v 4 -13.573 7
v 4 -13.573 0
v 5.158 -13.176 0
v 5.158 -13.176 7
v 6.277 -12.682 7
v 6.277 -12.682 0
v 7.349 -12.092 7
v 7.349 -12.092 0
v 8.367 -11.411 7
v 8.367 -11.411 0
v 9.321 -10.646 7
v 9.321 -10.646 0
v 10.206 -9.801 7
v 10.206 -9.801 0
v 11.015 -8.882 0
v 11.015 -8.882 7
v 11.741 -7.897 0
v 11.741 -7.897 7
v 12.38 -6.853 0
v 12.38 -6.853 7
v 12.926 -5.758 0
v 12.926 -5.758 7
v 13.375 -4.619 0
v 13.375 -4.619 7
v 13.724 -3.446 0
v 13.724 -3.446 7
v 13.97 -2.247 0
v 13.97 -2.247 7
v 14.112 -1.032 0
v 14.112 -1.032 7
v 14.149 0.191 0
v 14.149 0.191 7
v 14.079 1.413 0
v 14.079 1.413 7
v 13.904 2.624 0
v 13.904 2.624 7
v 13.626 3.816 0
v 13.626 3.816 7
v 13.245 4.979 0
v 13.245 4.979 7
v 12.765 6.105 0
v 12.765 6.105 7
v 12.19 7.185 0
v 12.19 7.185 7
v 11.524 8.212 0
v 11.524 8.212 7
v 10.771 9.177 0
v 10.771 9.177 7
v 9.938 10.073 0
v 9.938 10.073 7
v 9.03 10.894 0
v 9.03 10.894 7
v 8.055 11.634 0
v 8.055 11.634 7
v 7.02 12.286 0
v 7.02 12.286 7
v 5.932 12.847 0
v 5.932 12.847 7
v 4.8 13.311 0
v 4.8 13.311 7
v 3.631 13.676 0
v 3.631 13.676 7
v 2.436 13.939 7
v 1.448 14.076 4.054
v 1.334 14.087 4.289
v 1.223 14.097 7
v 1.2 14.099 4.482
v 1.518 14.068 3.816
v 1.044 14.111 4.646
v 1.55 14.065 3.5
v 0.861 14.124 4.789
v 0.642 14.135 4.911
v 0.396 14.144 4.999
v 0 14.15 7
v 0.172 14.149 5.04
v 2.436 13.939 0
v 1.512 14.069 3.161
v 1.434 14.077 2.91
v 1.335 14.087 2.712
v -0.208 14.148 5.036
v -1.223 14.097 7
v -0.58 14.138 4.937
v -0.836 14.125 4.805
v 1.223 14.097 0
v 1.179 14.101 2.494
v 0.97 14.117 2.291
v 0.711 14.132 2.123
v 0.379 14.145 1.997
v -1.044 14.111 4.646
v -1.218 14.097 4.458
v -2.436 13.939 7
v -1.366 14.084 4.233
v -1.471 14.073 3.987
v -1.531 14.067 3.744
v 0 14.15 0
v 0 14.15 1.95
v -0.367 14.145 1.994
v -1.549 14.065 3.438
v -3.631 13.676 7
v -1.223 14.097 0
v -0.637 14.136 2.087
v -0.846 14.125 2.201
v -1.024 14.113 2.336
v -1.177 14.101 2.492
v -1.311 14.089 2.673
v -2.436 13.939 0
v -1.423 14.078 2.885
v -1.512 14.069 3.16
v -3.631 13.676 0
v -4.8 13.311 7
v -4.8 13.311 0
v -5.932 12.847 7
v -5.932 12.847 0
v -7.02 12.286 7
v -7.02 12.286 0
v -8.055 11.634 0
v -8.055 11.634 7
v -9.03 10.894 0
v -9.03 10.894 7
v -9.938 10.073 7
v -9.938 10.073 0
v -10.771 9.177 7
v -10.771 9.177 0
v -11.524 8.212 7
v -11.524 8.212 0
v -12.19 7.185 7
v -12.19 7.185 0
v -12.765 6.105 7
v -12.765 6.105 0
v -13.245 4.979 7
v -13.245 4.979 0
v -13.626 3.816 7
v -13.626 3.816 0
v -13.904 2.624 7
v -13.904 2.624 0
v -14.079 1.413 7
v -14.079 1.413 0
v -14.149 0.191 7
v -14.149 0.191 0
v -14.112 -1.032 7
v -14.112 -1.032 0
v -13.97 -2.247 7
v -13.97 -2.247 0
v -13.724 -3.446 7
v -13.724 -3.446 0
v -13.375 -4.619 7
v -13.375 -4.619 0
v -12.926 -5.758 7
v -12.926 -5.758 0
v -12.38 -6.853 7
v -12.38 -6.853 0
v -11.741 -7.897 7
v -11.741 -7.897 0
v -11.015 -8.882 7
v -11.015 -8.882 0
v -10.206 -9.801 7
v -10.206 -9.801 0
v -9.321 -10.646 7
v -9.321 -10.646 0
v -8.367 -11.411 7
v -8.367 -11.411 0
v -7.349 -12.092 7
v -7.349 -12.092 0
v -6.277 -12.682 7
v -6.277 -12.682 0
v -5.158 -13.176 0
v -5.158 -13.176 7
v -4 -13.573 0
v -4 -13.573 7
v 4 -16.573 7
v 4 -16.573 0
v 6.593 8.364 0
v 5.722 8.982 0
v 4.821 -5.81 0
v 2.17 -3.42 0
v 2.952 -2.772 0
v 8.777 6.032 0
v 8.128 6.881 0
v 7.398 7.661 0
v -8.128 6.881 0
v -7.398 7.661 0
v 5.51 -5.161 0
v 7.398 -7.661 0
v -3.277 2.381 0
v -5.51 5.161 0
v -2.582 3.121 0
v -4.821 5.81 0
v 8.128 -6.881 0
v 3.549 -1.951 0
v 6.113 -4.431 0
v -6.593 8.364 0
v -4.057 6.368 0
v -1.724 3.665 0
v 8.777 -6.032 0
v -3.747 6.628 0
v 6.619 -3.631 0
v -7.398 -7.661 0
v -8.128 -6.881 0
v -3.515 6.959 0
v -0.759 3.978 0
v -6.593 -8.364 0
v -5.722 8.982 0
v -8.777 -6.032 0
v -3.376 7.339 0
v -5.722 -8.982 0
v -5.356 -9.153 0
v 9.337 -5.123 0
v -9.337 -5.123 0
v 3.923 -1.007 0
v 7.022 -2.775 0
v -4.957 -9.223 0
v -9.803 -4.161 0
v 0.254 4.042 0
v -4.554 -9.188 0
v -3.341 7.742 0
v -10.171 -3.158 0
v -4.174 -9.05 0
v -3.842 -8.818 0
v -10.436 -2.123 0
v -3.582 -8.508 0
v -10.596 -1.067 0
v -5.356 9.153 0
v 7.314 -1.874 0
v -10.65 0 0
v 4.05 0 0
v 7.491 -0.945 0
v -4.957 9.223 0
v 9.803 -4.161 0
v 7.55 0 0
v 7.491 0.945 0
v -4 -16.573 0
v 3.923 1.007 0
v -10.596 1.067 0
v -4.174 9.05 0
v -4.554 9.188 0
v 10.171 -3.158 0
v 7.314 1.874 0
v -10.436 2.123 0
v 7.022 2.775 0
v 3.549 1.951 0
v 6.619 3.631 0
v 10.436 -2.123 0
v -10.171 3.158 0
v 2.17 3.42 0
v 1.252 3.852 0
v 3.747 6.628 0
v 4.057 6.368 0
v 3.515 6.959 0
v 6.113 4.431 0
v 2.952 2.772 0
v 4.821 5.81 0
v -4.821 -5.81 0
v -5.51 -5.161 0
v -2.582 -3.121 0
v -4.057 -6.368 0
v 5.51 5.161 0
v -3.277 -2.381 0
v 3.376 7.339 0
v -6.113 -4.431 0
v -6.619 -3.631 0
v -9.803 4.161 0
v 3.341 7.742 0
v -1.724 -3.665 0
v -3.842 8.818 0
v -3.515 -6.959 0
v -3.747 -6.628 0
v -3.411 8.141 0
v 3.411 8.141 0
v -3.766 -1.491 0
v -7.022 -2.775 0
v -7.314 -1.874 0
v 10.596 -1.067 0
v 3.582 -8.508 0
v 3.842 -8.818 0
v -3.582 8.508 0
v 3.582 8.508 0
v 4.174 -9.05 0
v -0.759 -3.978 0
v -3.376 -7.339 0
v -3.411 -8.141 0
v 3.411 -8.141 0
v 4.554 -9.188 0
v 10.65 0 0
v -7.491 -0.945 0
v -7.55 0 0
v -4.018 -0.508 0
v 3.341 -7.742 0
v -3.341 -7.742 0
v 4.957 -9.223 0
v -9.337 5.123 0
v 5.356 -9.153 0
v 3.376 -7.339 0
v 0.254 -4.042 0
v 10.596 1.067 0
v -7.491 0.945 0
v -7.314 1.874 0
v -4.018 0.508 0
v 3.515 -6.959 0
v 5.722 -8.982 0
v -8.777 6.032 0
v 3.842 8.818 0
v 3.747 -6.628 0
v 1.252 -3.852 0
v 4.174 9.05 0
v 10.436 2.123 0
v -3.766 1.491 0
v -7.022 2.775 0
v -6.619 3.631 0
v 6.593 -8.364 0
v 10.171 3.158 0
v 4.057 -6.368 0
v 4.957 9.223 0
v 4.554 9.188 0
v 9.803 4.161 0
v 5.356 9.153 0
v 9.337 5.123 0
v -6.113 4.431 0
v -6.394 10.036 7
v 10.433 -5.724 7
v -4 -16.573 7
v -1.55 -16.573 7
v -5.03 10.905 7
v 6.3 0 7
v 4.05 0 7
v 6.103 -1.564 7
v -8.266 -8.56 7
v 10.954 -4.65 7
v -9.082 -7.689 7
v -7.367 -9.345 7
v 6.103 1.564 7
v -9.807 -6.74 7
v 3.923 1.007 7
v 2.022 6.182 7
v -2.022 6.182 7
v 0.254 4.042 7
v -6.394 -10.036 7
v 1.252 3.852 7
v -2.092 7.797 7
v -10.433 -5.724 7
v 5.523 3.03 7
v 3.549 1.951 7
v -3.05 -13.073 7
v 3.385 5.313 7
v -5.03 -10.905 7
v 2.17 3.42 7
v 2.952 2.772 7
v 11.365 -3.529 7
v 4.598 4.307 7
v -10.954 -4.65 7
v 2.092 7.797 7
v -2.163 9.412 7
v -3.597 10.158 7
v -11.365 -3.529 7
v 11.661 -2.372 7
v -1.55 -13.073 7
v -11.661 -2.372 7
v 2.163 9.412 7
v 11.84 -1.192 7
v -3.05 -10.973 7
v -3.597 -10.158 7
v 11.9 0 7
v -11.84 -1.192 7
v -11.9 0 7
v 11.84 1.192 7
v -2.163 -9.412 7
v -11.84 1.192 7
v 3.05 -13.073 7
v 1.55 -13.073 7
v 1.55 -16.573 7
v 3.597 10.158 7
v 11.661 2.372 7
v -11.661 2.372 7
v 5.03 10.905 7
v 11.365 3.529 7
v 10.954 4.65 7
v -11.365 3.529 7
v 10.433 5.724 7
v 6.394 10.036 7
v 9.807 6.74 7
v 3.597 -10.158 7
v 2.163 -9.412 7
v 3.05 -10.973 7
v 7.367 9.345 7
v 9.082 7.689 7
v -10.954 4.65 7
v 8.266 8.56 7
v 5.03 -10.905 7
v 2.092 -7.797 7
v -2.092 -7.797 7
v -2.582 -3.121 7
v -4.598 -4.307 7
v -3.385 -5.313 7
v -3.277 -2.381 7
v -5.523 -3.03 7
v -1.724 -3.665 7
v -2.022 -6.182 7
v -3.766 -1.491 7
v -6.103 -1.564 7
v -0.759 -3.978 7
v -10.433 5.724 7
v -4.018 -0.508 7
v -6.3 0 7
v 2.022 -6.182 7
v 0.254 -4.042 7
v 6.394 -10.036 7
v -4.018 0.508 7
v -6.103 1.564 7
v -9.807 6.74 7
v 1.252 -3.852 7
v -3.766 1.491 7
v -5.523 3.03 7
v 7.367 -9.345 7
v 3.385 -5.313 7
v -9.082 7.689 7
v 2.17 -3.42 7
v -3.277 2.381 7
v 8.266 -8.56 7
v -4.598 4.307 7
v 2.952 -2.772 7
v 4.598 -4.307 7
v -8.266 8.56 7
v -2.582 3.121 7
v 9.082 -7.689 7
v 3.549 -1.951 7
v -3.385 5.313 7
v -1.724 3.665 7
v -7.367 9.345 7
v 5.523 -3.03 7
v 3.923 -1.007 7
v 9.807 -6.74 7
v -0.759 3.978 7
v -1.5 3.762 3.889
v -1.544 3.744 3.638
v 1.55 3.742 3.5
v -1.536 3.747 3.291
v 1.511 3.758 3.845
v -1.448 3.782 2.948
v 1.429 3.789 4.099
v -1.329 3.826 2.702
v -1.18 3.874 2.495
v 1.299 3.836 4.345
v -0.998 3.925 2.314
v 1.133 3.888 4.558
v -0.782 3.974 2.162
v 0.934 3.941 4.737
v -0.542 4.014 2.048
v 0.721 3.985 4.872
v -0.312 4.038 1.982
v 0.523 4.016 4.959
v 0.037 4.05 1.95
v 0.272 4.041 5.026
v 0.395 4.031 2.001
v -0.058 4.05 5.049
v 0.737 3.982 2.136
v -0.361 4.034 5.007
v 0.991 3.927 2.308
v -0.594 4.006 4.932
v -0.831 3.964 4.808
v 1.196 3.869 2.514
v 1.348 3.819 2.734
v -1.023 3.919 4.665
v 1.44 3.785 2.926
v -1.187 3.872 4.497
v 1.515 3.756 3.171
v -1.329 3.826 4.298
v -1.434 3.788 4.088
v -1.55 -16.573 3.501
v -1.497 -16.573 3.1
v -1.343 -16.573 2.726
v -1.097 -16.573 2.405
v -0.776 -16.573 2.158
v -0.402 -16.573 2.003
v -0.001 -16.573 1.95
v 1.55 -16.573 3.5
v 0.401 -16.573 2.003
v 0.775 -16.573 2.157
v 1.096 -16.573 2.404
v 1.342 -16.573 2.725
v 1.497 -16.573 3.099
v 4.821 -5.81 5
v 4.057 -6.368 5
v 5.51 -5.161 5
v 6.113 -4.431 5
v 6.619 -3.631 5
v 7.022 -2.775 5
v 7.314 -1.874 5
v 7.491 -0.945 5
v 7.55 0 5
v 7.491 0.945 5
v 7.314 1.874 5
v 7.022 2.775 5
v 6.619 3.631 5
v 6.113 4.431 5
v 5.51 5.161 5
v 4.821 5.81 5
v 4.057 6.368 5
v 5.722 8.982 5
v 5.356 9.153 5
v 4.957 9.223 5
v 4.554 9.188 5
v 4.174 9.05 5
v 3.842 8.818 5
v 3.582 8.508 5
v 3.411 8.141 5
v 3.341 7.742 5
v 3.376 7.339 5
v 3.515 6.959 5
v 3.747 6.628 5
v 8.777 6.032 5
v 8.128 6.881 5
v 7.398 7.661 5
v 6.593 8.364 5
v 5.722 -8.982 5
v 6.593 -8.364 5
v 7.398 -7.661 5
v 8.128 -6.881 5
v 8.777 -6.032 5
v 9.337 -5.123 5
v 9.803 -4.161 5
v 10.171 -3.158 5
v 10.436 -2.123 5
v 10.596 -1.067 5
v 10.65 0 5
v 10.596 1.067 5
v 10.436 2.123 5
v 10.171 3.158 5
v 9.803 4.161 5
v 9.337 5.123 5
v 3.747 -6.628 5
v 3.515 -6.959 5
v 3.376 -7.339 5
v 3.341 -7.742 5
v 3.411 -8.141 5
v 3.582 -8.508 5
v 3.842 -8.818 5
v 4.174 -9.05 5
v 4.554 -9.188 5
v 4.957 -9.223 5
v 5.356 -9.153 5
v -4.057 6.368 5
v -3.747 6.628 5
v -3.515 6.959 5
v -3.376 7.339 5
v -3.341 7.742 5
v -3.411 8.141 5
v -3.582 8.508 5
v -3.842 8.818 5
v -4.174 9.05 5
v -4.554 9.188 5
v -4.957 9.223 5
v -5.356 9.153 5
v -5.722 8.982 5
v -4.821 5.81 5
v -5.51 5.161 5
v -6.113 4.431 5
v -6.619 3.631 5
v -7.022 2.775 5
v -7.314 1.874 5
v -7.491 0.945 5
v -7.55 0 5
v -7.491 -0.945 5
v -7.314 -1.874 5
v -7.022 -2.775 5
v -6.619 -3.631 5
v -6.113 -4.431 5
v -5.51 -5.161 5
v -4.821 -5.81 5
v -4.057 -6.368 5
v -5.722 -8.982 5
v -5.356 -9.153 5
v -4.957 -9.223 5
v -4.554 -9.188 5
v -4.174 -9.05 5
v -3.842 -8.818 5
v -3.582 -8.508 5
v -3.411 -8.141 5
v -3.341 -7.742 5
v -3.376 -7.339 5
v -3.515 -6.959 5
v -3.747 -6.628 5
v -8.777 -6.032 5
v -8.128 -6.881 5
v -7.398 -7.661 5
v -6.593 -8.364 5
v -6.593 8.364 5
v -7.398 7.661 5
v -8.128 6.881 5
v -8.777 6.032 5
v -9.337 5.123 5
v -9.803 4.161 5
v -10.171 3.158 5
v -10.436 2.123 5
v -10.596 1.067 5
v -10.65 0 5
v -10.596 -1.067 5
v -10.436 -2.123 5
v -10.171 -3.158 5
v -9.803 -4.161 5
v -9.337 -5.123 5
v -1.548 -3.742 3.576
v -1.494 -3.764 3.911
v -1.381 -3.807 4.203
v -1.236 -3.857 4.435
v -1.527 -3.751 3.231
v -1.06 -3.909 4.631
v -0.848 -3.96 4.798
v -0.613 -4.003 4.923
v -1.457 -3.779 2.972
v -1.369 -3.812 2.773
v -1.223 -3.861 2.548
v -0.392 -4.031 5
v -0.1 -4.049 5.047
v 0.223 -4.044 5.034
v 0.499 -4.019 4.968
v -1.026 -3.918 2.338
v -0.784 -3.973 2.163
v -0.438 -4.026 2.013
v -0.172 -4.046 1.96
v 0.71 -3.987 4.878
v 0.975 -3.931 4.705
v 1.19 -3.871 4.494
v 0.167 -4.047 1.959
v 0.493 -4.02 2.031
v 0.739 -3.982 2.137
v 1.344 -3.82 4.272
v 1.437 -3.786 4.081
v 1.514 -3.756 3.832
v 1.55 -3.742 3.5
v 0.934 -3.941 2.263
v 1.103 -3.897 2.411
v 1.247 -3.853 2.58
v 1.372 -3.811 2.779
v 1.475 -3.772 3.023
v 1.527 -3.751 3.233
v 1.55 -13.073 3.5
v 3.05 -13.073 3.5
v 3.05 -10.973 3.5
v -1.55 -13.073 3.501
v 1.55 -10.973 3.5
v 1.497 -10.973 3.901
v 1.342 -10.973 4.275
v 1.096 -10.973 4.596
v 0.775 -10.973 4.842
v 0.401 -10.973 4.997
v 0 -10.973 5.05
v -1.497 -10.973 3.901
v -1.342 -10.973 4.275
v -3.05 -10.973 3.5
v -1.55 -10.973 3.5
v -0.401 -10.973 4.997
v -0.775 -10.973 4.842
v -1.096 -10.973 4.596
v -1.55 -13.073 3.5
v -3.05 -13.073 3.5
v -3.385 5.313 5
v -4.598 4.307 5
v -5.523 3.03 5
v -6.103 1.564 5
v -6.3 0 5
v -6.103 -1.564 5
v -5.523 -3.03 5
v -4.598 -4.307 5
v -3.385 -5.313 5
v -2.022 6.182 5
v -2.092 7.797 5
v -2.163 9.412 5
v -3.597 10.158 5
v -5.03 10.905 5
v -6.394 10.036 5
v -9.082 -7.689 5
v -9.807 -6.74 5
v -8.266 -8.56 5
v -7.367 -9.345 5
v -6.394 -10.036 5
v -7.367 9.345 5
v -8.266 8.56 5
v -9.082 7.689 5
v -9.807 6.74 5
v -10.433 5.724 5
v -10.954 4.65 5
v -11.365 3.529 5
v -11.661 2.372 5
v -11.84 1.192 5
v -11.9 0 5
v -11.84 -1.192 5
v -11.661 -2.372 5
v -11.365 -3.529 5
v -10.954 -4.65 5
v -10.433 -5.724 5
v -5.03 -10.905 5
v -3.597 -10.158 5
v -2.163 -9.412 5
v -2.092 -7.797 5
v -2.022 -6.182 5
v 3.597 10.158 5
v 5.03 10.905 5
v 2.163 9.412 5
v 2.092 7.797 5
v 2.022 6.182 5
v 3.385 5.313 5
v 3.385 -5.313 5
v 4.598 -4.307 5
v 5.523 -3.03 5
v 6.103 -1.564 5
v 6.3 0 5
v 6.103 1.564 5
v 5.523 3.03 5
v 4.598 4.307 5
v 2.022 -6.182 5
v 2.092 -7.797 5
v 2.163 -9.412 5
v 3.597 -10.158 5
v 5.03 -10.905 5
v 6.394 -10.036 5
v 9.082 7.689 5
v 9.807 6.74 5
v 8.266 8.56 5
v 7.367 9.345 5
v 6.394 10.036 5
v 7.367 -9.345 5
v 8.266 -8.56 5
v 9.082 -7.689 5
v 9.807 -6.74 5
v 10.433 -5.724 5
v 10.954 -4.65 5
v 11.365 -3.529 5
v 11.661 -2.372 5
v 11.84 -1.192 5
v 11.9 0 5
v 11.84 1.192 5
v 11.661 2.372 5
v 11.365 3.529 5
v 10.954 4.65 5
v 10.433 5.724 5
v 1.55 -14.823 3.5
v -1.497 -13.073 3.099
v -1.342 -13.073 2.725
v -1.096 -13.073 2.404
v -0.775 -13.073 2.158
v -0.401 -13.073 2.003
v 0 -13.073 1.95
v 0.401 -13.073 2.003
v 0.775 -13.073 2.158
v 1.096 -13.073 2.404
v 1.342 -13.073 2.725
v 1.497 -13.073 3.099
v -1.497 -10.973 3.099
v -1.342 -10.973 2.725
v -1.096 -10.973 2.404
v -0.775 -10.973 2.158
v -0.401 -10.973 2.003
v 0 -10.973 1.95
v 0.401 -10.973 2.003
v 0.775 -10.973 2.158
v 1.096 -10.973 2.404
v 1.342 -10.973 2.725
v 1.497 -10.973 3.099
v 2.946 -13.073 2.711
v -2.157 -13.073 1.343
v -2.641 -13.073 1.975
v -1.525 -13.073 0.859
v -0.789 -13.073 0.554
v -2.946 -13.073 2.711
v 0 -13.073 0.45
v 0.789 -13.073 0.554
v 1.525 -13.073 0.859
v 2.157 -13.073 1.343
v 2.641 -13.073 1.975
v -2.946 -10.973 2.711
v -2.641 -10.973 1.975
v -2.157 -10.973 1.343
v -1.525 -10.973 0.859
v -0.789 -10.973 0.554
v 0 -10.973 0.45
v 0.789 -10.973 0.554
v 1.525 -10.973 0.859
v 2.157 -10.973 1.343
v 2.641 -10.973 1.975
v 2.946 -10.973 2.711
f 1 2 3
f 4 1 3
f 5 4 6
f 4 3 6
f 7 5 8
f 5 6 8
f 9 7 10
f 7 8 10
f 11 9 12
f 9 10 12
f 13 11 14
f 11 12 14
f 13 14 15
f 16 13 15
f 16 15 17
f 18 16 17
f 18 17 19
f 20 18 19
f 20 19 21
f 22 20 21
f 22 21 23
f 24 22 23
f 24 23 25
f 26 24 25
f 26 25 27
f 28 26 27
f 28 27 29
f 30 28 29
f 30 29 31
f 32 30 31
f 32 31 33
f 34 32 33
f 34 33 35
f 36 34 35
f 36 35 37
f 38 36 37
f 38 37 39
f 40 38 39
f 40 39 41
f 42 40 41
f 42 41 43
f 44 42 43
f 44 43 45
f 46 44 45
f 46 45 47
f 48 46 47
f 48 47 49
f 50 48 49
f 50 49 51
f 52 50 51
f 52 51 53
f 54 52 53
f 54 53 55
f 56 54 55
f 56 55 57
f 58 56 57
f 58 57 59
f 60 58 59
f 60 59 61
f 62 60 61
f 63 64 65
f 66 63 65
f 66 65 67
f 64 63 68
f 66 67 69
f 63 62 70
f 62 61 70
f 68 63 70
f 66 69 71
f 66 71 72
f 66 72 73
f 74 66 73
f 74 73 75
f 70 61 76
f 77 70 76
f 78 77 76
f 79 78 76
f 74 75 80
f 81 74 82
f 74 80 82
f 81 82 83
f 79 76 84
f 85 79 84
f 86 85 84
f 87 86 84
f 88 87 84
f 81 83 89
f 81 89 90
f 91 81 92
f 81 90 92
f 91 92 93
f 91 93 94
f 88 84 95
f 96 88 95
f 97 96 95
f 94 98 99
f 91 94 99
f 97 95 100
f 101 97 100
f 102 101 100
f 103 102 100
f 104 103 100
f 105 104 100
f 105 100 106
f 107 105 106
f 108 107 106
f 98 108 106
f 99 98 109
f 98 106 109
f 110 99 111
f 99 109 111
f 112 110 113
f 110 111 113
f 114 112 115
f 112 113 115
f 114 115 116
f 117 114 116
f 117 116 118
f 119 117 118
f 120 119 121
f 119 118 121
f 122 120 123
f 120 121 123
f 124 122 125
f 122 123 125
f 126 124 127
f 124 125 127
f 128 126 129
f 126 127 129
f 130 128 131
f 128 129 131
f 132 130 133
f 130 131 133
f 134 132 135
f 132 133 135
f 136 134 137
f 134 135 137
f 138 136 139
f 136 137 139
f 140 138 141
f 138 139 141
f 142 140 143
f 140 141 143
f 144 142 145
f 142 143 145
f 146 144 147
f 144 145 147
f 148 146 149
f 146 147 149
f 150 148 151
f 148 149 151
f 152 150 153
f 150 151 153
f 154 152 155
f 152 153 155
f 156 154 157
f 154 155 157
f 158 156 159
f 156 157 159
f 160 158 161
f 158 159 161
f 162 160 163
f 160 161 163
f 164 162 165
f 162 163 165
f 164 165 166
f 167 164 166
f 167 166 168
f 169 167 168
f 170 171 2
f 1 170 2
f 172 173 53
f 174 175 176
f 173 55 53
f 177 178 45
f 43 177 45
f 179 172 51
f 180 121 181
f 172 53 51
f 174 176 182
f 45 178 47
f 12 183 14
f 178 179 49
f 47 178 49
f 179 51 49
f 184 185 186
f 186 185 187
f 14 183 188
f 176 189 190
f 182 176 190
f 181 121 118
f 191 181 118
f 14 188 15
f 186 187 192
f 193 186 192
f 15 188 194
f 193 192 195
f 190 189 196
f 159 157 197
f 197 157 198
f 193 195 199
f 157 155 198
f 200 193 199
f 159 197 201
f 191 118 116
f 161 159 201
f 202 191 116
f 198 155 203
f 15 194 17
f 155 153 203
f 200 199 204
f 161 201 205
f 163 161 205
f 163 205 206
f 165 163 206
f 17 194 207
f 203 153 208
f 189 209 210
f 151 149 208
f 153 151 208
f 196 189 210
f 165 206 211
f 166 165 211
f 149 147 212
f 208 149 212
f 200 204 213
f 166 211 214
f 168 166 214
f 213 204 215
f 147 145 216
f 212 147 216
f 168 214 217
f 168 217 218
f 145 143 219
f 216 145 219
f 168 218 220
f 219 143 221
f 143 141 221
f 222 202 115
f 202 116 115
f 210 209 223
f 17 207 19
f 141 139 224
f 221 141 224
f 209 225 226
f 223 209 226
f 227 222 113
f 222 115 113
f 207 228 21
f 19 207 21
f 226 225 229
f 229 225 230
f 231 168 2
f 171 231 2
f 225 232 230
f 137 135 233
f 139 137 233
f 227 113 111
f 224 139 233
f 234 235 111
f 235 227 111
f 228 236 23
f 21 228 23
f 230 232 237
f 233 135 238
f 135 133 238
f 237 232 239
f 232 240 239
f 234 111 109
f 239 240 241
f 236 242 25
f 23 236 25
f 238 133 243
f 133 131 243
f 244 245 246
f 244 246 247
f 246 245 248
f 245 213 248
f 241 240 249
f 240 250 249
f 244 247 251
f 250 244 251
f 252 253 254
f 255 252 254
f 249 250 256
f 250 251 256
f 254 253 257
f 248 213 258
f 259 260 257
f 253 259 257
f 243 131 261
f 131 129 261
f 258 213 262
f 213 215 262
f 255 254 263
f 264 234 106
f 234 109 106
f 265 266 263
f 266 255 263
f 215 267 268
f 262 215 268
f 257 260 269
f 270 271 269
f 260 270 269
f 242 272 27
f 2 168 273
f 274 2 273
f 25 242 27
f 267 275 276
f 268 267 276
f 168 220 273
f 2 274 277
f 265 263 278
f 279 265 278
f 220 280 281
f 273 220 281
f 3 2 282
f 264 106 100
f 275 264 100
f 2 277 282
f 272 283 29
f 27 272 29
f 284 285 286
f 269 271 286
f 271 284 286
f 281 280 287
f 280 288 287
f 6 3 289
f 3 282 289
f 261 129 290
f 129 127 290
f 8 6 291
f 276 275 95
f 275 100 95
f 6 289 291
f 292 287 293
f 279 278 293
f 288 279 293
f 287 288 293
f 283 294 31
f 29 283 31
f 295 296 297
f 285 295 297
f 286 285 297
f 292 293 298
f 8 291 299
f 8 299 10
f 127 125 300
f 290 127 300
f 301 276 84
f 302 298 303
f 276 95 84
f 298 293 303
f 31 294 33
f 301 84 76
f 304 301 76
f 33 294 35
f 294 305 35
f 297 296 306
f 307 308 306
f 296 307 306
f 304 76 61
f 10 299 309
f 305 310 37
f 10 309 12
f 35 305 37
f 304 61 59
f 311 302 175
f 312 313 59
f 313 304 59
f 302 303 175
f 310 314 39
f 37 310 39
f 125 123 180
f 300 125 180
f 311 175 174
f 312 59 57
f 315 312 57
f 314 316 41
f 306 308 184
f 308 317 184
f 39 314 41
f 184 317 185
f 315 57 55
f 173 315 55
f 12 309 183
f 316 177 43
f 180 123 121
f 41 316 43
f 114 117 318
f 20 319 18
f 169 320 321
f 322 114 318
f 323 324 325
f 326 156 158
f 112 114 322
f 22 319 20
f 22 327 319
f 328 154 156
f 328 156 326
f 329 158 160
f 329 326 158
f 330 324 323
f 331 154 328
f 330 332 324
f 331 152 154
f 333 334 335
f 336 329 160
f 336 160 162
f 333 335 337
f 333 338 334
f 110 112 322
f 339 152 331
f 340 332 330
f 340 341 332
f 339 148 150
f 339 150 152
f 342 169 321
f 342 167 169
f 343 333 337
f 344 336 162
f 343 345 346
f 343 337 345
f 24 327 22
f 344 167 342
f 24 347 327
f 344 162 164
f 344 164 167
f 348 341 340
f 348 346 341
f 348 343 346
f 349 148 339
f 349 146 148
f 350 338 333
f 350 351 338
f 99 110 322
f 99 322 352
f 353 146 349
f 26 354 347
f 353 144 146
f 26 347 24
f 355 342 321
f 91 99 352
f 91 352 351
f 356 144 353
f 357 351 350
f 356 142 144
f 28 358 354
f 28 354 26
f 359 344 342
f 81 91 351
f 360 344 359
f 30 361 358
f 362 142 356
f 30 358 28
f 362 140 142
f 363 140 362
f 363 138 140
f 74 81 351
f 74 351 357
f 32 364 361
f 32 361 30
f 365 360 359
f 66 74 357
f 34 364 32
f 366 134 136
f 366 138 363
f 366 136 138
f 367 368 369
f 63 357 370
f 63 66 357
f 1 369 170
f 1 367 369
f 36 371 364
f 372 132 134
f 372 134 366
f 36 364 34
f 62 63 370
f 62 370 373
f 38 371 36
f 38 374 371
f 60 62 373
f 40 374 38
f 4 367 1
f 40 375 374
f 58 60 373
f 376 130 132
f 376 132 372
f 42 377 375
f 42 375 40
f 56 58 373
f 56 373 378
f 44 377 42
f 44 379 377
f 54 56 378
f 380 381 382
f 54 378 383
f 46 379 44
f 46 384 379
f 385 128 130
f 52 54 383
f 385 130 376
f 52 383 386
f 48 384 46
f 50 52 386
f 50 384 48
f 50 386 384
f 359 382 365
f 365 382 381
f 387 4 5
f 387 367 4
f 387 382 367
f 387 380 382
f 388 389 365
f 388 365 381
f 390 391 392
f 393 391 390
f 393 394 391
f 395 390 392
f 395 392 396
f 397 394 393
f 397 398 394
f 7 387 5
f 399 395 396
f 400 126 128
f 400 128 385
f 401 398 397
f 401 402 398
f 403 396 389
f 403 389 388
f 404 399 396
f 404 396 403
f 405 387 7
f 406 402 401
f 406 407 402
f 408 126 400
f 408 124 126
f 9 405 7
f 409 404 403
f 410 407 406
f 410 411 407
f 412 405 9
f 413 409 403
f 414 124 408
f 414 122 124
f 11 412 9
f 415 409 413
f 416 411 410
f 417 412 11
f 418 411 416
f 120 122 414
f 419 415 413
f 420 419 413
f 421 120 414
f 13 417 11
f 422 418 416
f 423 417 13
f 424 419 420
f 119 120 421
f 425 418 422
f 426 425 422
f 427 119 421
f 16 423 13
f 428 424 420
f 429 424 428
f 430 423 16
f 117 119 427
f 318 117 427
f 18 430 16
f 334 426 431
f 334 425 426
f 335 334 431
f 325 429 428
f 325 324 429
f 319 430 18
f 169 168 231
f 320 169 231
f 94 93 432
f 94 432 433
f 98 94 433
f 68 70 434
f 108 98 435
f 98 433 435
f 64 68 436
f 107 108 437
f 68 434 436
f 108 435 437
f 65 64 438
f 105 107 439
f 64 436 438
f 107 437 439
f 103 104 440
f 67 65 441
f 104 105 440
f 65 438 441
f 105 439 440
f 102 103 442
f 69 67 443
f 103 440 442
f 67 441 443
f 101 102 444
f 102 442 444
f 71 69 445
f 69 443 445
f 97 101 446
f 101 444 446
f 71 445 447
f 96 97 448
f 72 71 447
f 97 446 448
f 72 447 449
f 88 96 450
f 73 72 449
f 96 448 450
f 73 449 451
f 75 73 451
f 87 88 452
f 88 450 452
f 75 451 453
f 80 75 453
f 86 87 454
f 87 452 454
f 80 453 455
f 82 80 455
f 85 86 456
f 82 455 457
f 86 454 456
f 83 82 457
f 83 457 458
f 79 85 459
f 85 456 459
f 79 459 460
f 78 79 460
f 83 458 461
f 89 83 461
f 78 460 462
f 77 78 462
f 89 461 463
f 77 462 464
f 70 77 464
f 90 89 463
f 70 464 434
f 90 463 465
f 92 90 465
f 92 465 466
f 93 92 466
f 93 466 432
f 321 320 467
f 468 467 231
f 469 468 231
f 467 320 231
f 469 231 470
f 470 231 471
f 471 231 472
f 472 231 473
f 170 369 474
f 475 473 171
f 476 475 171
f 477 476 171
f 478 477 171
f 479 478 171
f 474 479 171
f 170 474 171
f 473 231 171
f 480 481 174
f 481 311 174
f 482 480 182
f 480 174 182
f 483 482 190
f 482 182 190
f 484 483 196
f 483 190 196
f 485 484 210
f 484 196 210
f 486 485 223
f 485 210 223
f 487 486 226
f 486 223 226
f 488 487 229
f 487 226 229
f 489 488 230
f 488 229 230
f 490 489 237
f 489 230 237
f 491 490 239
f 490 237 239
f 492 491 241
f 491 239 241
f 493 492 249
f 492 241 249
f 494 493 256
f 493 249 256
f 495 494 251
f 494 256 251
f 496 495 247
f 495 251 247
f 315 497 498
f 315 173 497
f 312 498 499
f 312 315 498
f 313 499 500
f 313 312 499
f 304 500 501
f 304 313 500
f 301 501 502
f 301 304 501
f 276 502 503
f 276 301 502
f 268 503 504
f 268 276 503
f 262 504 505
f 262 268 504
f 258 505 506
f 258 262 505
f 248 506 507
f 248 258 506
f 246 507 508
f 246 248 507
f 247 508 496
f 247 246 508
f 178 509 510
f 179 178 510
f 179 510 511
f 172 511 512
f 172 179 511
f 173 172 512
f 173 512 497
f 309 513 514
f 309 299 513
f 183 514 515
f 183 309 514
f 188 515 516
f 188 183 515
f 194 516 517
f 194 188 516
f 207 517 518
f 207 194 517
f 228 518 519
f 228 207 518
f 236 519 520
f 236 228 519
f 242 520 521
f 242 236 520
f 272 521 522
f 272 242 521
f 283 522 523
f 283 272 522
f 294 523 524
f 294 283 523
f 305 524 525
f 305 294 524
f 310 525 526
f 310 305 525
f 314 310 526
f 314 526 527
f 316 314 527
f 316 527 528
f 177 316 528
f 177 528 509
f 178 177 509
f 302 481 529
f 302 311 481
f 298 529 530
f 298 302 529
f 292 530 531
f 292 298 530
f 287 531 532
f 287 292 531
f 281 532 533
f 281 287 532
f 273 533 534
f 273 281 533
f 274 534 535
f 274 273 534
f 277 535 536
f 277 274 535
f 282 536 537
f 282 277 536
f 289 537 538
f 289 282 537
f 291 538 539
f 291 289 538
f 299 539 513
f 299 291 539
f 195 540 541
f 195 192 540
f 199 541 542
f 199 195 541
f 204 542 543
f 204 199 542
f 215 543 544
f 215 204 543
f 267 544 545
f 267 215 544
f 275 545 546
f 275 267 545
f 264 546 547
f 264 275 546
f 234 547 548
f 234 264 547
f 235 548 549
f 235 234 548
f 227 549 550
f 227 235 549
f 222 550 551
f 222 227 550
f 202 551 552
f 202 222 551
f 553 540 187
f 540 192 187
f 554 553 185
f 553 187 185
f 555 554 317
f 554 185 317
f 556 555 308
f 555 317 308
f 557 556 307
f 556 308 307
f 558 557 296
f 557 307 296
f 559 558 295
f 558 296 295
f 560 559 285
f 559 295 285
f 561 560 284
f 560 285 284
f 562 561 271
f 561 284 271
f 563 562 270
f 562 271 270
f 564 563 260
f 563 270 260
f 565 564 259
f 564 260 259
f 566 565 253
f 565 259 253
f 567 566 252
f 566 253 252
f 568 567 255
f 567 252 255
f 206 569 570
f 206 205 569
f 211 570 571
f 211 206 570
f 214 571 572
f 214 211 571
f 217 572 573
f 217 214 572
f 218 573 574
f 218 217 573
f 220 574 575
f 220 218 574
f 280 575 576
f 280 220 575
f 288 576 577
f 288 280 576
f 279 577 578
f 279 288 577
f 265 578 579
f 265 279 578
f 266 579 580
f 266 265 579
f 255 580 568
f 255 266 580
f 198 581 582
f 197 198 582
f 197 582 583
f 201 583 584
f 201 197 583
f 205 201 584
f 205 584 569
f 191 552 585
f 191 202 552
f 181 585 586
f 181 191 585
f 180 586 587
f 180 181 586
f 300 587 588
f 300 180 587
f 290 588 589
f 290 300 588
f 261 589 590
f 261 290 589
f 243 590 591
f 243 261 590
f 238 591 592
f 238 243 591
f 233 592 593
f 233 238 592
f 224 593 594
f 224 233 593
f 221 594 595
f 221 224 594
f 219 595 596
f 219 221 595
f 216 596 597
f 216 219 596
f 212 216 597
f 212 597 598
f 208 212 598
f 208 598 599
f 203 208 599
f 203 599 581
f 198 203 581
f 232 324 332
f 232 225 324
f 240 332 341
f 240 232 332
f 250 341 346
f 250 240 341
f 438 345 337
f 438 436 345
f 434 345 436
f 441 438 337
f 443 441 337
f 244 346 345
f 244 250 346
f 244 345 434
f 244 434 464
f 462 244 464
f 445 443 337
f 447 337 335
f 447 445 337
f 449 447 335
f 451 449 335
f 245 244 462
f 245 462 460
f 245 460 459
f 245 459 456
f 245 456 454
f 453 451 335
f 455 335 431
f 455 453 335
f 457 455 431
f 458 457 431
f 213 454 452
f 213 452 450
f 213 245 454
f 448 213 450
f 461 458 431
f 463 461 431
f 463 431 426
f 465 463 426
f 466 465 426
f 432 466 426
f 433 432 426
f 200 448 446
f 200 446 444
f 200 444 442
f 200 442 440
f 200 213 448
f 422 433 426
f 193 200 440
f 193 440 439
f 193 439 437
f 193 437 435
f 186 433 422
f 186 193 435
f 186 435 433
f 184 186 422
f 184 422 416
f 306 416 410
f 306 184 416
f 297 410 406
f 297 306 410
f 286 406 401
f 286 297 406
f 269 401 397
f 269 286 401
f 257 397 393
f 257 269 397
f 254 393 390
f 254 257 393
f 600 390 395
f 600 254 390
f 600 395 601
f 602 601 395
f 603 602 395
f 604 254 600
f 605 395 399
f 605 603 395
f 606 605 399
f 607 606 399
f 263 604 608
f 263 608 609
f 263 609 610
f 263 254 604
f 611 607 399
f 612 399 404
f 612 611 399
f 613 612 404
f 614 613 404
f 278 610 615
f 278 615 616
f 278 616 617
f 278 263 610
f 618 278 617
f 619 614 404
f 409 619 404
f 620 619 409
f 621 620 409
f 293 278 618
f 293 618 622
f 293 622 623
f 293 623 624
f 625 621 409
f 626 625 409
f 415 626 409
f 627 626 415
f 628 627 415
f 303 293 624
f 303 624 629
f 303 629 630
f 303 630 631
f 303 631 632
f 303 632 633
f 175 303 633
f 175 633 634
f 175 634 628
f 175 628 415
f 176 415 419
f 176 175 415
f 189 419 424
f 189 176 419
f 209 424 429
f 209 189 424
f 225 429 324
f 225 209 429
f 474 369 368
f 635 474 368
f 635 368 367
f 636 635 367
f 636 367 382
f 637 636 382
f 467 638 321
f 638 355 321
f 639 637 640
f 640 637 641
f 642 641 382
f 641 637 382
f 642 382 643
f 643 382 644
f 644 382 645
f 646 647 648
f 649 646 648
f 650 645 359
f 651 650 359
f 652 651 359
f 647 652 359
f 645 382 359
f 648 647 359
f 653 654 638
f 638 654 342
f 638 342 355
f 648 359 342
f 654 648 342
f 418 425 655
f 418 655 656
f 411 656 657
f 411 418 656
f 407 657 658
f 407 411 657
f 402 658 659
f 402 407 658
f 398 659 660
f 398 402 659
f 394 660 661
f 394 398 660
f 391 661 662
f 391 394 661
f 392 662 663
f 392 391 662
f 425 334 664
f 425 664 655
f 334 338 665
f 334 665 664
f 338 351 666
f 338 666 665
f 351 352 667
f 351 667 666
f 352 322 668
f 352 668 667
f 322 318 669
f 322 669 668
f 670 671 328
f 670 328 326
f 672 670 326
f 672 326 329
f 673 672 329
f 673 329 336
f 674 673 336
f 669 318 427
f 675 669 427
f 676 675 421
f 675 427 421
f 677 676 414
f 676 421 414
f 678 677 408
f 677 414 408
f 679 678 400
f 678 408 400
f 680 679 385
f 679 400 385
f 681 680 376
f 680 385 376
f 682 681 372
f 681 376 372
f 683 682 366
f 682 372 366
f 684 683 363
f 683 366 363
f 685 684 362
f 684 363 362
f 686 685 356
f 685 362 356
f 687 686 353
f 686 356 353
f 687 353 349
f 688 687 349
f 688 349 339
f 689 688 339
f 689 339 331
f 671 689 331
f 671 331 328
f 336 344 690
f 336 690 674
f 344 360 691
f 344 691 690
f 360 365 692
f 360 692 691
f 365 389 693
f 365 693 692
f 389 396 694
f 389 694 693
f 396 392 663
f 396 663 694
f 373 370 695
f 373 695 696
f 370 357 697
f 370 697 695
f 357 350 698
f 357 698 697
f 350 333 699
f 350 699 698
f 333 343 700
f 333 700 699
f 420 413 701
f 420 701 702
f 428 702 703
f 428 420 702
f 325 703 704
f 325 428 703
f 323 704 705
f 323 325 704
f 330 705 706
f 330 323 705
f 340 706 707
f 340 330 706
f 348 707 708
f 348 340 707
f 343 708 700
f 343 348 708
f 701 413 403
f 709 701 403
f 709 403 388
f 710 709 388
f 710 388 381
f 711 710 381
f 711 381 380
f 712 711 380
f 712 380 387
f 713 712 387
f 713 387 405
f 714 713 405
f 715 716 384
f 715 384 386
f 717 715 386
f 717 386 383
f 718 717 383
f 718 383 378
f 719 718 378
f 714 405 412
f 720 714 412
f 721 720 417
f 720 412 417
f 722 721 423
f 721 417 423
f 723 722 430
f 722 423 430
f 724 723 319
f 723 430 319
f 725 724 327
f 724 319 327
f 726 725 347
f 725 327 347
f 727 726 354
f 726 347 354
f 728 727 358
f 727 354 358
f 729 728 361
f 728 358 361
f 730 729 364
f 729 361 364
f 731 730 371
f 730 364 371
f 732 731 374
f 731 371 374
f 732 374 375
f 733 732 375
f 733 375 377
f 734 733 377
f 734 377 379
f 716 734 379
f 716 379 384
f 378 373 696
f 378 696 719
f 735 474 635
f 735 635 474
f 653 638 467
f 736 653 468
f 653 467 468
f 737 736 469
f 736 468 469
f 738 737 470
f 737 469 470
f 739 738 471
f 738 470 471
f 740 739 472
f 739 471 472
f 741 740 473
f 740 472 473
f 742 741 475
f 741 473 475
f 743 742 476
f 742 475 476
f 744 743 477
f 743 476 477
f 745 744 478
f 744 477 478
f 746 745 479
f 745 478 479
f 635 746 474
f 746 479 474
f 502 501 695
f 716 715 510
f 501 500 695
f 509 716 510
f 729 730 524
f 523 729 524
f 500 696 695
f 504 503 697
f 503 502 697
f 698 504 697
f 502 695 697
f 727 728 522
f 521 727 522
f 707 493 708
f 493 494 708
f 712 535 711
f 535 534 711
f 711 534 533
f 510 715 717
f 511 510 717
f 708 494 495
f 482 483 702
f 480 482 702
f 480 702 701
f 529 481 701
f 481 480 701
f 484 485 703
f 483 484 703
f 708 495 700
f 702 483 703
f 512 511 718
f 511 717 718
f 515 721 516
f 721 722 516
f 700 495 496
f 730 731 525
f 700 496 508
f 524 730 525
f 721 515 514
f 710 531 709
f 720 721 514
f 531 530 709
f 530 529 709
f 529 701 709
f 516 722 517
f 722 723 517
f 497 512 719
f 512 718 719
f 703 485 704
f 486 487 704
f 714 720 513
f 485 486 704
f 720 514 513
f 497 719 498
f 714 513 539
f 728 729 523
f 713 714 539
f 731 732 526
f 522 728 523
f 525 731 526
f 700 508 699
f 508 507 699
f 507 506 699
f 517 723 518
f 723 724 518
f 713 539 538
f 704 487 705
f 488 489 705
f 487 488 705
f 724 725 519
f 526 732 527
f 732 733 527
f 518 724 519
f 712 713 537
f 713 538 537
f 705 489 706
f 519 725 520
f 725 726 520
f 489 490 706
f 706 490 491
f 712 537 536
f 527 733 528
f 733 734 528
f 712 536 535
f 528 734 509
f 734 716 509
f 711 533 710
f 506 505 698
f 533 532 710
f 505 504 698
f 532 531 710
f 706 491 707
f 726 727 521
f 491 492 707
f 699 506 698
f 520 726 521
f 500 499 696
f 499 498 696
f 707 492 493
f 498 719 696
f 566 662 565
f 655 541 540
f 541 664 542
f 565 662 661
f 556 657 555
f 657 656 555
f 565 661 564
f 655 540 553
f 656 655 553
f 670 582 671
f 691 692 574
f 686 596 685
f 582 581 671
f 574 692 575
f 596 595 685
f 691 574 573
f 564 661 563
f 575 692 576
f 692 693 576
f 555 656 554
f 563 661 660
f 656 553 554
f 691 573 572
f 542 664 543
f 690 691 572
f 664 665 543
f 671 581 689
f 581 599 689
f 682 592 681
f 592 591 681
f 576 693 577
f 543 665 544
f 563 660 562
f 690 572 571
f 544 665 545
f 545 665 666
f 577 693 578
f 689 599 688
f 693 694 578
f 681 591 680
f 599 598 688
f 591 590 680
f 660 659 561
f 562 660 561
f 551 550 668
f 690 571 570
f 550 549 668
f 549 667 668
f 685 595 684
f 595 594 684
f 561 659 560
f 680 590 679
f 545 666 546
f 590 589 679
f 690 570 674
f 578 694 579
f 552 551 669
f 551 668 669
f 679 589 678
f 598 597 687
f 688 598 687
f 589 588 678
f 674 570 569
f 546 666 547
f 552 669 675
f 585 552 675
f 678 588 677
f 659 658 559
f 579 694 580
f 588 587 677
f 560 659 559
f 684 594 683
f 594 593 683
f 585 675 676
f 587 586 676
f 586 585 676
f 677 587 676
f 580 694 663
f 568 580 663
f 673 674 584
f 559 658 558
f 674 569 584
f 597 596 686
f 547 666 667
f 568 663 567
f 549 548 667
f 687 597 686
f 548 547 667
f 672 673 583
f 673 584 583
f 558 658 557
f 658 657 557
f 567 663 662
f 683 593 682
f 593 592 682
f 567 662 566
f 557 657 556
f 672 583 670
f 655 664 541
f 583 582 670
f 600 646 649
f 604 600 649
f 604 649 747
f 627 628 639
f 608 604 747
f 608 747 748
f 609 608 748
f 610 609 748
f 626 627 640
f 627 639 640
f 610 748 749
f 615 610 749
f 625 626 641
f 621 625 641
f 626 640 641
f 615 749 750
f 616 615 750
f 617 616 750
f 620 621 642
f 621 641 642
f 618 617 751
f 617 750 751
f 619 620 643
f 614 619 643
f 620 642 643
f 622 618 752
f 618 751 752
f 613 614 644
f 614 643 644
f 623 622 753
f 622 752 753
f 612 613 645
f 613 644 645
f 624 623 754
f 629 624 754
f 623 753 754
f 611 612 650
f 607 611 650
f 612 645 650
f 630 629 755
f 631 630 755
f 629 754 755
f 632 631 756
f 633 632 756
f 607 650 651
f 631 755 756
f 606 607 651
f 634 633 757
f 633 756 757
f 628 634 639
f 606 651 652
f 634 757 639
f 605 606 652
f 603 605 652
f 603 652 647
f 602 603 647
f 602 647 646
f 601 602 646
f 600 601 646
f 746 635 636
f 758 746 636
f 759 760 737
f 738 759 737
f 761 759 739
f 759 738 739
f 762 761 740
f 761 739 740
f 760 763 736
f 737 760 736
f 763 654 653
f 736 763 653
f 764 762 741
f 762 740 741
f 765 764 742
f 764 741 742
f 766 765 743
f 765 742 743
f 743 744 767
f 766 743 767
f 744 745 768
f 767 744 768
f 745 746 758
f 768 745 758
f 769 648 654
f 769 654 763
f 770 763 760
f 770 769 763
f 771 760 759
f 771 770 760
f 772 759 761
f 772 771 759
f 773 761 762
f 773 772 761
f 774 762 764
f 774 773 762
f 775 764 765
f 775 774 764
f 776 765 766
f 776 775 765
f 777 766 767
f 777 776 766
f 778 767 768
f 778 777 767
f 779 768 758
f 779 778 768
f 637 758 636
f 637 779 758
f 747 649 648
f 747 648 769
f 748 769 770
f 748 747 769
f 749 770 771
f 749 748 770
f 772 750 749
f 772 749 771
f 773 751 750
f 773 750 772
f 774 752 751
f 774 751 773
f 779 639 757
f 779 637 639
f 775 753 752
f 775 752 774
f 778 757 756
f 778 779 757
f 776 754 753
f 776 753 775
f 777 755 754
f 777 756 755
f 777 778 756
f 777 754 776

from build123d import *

# Parameters (mm, degrees)
SKETCH_R        = 4.05
EXTRUDE_DEPTH   = 7
SKETCH001_R     = 1.55
POCKET_DEPTH    = 30.723859
POCKET001_DEPTH = 3.5
POCKET002_DEPTH = 2.1
POCKET003_DEPTH = 2


with BuildPart() as part:
    # Sketch → Extrude (new body)
    with BuildSketch(Plane.XY):
        with BuildLine():
            ThreePointArc((4, -13.572859), (0, 14.15), (-4, -13.572859))
            Line((-4, -13.572859), (-4, -16.572859))
            Line((-4, -16.572859), (4, -16.572859))
            Line((4, -16.572859), (4, -13.572859))
        make_face()
        Circle(SKETCH_R, mode=Mode.SUBTRACT)
        with BuildLine():
            ThreePointArc((-4.056612, 6.367605), (-7.55, 0), (-4.056612, -6.367605))
            ThreePointArc((-5.722241, -8.982119), (-3.58217, -8.507677), (-4.056612, -6.367605))
            ThreePointArc((-5.722241, 8.982119), (-10.65, 0), (-5.722241, -8.982119))
            ThreePointArc((-4.056612, 6.367605), (-3.58217, 8.507677), (-5.722241, 8.982119))
        make_face(mode=Mode.SUBTRACT)
        with BuildLine():
            ThreePointArc((4.056612, -6.367605), (7.55, 0), (4.056612, 6.367605))
            ThreePointArc((5.722241, 8.982119), (3.58217, 8.507677), (4.056612, 6.367605))
            ThreePointArc((5.722241, -8.982119), (10.65, 0), (5.722241, 8.982119))
            ThreePointArc((4.056612, -6.367605), (3.58217, -8.507677), (5.722241, -8.982119))
        make_face(mode=Mode.SUBTRACT)
    extrude(amount=EXTRUDE_DEPTH)

    # Sketch001 → Pocket (cut, through all)
    with BuildSketch(Plane.XZ.offset(16.572859)):
        with Locations((0, 3.5)):
            Circle(SKETCH001_R)
    extrude(amount=-POCKET_DEPTH, mode=Mode.SUBTRACT)

    # Sketch002 → Pocket001 (cut)
    with BuildSketch(Plane.XY.offset(7)):
        Polygon((-3.049999, -10.972859), (-3.049999, -13.072859), (-1.549999, -13.072859), (-1.549999, -16.572859), (1.550001, -16.572859), (1.550001, -13.072859), (3.050001, -13.072859), (3.050001, -10.972859), align=None)
    extrude(amount=-POCKET001_DEPTH, mode=Mode.SUBTRACT)

    # Sketch003 → Pocket002 (cut)
    with BuildSketch(Plane.XZ.offset(10.972859)):
        with BuildLine():
            ThreePointArc((-3.050001, 3.5), (0, 0.449999), (3.050001, 3.5))
            Line((-3.050001, 3.5), (3.050001, 3.5))
        make_face()
    extrude(amount=POCKET002_DEPTH, mode=Mode.SUBTRACT)

    # Sketch004 → Pocket003 (cut)
    with BuildSketch(Plane.XY.offset(7)):
        with BuildLine():
            ThreePointArc((-3.384988, 5.313366), (-6.3, 0), (-3.384988, -5.313366))
            Line((-3.384988, -5.313366), (-2.021577, -6.181954))
            Line((-2.021577, -6.181954), (-2.092091, -7.796996))
            Line((-2.092091, -7.796996), (-2.162606, -9.412039))
            Line((-2.162606, -9.412039), (-3.59653, -10.158493))
            Line((-3.59653, -10.158493), (-5.030455, -10.904946))
            Line((-5.030455, -10.904946), (-6.393865, -10.036358))
            ThreePointArc((-6.393865, 10.036358), (-11.9, 0), (-6.393865, -10.036358))
            Line((-6.393865, 10.036358), (-5.030455, 10.904946))
            Line((-5.030455, 10.904946), (-3.59653, 10.158492))
            Line((-3.59653, 10.158492), (-2.162606, 9.412039))
            Line((-2.162606, 9.412039), (-2.092091, 7.796997))
            Line((-2.092091, 7.796997), (-2.021577, 6.181954))
            Line((-2.021577, 6.181954), (-3.384988, 5.313366))
        make_face()
        with BuildLine():
            ThreePointArc((3.384988, -5.313366), (6.3, 0), (3.384988, 5.313366))
            Line((3.384988, 5.313366), (2.021577, 6.181954))
            Line((2.021577, 6.181954), (2.092091, 7.796996))
            Line((2.092091, 7.796996), (2.162606, 9.412039))
            Line((2.162606, 9.412039), (3.59653, 10.158493))
            Line((3.59653, 10.158493), (5.030455, 10.904946))
            Line((5.030455, 10.904946), (6.393865, 10.036358))
            ThreePointArc((6.393865, -10.036358), (11.9, 0), (6.393865, 10.036358))
            Line((5.030457, -10.904952), (6.393865, -10.036358))
            Line((3.596533, -10.158494), (5.030457, -10.904952))
            Line((2.16261, -9.412036), (3.596533, -10.158494))
            Line((2.092091, -7.796993), (2.16261, -9.412036))
            Line((2.021573, -6.18195), (2.092091, -7.796993))
            Line((3.384988, -5.313366), (2.021573, -6.18195))
        make_face()
    extrude(amount=-POCKET003_DEPTH, mode=Mode.SUBTRACT)


solid = part.part
